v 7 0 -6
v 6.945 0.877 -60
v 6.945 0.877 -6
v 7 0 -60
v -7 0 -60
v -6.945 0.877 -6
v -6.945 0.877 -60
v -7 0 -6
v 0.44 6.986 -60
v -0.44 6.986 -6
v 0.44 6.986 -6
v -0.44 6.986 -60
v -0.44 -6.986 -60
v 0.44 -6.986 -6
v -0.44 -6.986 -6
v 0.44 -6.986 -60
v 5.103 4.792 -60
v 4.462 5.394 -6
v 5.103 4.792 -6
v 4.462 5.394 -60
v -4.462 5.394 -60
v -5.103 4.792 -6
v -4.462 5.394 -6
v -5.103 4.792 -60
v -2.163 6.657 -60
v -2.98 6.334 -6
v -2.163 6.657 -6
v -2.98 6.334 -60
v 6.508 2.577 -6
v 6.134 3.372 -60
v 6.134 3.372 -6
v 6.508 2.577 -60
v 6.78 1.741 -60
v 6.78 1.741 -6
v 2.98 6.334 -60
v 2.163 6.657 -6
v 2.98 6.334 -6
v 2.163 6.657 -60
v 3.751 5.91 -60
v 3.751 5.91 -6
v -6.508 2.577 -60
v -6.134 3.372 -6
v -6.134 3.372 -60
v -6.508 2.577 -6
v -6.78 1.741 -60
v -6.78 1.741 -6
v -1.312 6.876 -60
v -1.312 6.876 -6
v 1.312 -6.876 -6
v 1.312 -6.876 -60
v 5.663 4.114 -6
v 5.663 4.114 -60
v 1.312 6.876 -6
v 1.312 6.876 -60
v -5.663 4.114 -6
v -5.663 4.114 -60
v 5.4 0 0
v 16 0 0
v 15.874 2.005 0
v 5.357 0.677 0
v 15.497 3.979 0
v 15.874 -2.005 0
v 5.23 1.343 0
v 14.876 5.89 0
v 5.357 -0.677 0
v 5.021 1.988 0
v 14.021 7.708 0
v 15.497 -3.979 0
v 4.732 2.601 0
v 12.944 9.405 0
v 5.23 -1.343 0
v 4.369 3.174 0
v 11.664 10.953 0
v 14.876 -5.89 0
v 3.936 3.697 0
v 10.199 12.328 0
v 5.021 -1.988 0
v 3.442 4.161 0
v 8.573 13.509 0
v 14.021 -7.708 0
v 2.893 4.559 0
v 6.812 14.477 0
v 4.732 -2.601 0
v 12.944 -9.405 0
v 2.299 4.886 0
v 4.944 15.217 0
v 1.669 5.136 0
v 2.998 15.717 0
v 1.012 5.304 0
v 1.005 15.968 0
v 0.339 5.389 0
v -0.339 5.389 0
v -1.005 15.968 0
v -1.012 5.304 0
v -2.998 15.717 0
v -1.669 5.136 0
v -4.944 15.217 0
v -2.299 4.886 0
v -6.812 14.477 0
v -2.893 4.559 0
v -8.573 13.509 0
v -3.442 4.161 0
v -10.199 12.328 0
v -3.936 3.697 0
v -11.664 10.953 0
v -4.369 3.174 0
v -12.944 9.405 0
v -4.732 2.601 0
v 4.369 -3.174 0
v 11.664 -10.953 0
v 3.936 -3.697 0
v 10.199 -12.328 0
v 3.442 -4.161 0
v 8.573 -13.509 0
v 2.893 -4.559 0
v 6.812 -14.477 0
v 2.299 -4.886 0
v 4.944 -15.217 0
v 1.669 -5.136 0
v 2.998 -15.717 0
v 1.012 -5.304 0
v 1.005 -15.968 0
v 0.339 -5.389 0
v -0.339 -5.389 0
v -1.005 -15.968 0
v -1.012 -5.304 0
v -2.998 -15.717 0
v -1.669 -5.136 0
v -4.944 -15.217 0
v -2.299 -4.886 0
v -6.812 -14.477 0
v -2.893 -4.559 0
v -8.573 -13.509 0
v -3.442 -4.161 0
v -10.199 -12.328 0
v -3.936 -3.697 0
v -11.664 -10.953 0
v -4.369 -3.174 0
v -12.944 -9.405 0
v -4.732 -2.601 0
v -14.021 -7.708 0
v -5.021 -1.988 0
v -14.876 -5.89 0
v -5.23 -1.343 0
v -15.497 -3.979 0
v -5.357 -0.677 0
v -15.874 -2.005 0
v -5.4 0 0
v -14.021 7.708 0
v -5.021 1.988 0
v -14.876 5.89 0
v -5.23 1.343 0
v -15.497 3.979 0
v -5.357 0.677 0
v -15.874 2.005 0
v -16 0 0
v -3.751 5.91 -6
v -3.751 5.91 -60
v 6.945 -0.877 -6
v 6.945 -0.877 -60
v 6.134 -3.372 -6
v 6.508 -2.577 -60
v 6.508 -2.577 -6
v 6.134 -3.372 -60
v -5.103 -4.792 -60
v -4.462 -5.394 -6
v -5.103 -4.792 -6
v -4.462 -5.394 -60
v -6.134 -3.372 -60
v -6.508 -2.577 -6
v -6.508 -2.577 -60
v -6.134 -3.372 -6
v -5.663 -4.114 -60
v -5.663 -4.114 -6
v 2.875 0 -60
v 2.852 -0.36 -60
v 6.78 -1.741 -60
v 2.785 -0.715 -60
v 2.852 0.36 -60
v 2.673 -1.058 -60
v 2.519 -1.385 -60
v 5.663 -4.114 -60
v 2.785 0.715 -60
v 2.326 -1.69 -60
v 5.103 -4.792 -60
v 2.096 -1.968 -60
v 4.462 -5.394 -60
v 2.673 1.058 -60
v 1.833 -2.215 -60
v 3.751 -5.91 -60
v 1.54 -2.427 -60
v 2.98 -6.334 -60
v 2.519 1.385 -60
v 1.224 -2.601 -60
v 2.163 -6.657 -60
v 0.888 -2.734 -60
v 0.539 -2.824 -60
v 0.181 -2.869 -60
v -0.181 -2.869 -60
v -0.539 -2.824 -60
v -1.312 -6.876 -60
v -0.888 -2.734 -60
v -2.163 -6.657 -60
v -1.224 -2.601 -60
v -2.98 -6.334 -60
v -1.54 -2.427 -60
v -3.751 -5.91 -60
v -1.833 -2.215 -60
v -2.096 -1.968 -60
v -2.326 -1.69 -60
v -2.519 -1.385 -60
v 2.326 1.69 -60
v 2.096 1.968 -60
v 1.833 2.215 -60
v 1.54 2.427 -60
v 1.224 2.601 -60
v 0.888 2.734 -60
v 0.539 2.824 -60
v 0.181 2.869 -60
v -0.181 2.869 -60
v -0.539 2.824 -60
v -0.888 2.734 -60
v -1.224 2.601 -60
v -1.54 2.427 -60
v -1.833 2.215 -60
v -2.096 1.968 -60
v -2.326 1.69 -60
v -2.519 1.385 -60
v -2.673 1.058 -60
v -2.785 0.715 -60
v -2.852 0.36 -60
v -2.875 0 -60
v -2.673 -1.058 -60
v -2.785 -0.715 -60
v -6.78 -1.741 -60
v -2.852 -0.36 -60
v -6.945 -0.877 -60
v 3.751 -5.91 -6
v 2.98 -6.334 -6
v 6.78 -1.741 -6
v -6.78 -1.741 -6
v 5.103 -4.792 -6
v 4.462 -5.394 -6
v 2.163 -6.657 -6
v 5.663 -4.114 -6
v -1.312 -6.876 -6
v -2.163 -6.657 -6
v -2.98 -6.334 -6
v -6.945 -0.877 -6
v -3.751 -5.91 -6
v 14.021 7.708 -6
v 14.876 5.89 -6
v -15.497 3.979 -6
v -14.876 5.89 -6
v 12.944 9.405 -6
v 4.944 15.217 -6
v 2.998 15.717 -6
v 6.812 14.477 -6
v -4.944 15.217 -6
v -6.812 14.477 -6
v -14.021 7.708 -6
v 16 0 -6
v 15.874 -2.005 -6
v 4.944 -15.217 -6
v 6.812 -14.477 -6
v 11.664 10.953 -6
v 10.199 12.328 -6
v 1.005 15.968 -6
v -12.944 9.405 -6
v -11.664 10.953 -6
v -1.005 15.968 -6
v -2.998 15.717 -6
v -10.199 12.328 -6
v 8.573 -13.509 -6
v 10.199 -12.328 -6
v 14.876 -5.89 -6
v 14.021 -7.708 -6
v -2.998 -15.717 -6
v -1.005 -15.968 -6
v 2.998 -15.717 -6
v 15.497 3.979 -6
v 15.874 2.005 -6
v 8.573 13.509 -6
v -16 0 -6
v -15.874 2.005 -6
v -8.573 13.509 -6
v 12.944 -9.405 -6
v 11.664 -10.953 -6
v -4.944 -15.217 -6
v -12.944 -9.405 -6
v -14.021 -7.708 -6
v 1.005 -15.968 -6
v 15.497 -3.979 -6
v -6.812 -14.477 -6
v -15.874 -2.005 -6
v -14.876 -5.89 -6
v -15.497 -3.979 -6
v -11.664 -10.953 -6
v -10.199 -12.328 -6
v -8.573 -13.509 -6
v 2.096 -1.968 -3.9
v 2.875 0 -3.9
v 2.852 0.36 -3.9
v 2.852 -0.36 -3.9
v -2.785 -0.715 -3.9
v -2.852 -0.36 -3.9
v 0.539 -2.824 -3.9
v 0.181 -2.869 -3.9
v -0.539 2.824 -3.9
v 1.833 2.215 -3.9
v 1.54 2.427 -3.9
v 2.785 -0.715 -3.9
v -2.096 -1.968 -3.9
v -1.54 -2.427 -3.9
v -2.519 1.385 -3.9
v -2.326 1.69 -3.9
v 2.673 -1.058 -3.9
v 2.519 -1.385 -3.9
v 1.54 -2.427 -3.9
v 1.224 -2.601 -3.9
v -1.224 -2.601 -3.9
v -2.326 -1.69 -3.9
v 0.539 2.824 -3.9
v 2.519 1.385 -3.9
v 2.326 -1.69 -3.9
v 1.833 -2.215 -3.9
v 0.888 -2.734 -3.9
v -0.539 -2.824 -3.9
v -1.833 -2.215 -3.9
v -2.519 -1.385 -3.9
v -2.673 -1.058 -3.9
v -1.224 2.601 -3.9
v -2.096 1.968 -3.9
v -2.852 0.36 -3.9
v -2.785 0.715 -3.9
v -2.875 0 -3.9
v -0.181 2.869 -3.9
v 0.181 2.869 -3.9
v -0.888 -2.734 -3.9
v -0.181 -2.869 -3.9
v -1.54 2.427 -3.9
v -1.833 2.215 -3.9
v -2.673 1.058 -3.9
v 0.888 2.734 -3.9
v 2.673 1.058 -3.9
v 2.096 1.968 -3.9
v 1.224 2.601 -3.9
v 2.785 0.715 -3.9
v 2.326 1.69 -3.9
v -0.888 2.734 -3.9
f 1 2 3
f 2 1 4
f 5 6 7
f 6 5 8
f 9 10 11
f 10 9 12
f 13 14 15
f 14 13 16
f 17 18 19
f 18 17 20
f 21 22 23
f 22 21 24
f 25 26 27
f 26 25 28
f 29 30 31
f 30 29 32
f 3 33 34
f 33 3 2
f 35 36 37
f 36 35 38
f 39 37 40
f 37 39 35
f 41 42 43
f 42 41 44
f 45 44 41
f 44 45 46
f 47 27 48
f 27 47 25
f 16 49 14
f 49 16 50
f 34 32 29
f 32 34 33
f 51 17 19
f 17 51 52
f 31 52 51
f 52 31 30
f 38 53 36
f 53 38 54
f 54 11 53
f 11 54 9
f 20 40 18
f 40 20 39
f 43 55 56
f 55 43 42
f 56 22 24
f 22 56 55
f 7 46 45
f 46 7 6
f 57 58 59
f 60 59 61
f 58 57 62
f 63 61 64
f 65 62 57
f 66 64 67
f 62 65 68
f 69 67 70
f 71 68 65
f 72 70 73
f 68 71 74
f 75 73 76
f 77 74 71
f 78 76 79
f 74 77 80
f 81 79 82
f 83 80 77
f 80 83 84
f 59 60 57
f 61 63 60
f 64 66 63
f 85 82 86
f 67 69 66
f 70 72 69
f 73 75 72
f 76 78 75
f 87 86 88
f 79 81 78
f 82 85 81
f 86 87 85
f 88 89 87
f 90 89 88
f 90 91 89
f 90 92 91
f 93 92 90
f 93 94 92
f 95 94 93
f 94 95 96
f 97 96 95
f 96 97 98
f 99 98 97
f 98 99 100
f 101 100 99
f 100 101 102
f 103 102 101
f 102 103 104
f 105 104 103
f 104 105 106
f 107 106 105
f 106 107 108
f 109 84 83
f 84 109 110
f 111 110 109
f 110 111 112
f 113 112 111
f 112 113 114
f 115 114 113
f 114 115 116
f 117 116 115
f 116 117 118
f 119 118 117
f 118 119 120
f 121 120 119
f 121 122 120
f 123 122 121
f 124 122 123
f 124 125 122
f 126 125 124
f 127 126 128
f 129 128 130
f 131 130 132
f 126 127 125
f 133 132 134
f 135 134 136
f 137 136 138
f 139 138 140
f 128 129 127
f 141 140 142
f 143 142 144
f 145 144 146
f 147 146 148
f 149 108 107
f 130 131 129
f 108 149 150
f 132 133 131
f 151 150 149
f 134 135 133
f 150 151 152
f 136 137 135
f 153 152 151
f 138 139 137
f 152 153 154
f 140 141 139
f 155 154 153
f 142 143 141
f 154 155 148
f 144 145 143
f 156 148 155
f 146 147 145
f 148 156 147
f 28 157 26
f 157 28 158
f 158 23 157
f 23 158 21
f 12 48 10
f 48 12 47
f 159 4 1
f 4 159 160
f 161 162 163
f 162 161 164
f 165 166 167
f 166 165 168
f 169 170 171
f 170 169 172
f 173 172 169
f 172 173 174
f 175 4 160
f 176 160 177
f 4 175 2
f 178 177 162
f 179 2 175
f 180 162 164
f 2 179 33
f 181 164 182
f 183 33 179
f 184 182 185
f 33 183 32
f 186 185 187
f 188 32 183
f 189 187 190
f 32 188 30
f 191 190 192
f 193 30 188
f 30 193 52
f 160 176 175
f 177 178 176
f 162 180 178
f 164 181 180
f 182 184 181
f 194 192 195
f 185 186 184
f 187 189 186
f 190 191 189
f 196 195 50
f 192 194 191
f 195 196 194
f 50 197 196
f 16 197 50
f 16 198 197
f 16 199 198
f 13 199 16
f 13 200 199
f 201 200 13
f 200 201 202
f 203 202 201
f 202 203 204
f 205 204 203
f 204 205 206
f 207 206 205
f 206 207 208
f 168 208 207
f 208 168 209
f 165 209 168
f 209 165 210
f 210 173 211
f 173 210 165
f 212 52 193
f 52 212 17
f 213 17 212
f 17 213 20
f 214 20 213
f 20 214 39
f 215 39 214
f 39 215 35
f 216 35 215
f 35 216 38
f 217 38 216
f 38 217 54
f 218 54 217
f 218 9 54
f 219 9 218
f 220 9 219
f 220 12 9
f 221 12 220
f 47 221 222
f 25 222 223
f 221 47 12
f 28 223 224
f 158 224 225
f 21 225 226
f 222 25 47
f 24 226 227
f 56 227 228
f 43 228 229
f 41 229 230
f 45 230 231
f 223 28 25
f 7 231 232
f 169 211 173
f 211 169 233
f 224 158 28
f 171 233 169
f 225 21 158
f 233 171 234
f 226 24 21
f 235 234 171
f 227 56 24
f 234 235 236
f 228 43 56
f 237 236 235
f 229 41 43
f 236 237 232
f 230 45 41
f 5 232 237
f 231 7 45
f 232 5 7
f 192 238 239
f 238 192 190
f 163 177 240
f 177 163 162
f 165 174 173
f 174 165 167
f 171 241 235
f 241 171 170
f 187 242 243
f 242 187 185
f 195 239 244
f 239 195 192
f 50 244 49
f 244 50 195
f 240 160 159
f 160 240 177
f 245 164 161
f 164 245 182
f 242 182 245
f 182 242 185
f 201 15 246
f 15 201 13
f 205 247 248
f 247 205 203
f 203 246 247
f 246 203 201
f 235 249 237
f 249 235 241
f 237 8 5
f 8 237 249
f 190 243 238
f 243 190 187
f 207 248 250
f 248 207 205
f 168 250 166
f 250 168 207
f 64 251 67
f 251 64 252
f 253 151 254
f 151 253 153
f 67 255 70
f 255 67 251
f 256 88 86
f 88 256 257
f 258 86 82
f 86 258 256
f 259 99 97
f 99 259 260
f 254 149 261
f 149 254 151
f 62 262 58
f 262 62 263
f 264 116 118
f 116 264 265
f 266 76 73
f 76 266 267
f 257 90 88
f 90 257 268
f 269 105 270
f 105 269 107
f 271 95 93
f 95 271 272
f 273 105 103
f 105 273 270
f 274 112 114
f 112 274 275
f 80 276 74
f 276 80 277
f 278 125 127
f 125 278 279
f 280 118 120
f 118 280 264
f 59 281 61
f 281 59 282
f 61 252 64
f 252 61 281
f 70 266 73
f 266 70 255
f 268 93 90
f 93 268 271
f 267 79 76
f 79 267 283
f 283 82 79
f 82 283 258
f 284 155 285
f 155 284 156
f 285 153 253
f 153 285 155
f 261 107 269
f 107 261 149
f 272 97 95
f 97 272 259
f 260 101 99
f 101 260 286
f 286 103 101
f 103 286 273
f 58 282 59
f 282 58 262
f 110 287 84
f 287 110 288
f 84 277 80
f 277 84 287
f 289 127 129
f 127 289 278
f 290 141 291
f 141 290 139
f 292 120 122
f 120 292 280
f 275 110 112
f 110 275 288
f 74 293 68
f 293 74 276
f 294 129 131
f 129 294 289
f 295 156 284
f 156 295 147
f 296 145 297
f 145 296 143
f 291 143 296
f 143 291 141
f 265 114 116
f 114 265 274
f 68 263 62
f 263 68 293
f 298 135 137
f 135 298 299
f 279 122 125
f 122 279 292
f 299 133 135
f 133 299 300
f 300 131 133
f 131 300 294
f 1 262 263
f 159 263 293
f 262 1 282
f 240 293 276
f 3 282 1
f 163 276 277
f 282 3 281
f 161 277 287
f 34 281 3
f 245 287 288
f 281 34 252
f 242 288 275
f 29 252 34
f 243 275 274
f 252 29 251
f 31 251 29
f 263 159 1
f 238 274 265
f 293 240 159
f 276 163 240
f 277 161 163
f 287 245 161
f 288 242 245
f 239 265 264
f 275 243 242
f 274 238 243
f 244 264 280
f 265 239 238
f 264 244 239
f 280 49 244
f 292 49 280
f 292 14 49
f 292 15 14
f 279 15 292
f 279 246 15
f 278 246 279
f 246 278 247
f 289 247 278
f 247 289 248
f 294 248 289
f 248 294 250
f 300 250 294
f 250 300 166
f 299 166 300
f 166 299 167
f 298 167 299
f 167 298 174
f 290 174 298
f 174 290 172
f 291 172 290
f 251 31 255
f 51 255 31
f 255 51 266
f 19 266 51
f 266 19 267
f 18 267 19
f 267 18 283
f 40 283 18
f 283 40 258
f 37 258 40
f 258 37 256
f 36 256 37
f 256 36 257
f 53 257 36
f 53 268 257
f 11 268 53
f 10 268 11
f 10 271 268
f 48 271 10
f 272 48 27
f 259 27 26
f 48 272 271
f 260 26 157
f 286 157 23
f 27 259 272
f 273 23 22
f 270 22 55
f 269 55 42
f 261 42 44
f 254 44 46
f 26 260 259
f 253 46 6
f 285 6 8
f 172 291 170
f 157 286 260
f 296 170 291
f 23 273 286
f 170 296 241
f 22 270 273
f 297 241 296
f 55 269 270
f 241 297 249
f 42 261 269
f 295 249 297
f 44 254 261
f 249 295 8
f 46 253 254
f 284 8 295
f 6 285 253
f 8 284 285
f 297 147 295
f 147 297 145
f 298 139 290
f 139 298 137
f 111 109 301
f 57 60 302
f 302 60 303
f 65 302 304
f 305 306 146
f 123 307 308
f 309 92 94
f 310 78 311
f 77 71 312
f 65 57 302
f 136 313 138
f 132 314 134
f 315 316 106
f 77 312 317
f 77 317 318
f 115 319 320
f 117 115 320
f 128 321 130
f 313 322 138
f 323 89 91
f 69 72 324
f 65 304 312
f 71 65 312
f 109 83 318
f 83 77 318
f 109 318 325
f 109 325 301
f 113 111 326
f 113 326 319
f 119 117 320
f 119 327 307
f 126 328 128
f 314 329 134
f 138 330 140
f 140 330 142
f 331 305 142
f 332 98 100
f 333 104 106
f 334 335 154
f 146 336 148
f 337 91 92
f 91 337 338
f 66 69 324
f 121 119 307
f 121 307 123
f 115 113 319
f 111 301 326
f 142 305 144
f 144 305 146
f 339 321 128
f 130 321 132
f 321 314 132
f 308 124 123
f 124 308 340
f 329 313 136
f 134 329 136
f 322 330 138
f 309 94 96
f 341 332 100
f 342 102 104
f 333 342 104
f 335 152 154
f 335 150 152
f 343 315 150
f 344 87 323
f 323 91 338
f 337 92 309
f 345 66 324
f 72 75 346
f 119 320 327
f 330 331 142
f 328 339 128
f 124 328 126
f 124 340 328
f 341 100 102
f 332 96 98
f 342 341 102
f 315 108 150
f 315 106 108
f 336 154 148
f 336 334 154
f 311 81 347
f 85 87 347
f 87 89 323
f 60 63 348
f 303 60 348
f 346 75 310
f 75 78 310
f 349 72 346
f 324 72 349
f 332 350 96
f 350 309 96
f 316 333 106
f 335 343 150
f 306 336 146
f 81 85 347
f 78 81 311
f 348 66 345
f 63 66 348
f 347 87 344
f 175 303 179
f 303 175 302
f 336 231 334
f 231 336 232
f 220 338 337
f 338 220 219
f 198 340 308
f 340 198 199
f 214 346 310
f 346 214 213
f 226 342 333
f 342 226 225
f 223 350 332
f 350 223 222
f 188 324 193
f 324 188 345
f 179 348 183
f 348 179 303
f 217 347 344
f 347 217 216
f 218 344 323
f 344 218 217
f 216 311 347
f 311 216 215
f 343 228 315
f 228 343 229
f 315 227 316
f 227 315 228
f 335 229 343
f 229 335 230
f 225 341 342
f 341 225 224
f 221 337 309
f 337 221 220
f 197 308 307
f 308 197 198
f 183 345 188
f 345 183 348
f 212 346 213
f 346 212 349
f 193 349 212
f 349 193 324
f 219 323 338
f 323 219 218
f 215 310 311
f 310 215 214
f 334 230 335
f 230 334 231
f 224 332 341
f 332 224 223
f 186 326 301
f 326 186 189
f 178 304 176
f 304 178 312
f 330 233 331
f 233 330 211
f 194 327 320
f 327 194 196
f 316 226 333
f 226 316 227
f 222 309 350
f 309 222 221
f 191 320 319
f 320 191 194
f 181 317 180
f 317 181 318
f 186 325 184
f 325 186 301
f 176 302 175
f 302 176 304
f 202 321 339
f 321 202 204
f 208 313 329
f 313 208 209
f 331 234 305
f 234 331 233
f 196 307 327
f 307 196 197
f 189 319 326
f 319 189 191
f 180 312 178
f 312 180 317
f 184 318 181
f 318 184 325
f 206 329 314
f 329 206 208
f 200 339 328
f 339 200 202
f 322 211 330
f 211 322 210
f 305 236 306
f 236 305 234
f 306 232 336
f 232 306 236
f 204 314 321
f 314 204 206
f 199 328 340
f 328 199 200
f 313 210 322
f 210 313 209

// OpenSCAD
$fn = 50;


difference() {
	union() {
		translate(v = [0, 0, -60.0000000000]) {
			cylinder(h = 60, r = 7.0000000000);
		}
		translate(v = [0, 0, -6.0000000000]) {
			cylinder(h = 6, r = 16.0000000000);
		}
	}
	union() {
		translate(v = [0, 0, 0]) {
			rotate(a = [0, 0, 0]) {
				difference() {
					union() {
						#translate(v = [0, 0, -60.0000000000]) {
							cylinder(h = 60, r = 2.6000000000);
						}
						#translate(v = [0, 0, -3.9000000000]) {
							cylinder(h = 3.9000000000, r = 7.0000000000, r1 = 2.8750000000, r2 = 5.4000000000);
						}
						#translate(v = [0, 0, -60.0000000000]) {
							cylinder(h = 60, r = 2.8750000000);
						}
						#translate(v = [0, 0, -60.0000000000]) {
							cylinder(h = 60, r = 2.6000000000);
						}
					}
					union();
				}
			}
		}
	}
}
